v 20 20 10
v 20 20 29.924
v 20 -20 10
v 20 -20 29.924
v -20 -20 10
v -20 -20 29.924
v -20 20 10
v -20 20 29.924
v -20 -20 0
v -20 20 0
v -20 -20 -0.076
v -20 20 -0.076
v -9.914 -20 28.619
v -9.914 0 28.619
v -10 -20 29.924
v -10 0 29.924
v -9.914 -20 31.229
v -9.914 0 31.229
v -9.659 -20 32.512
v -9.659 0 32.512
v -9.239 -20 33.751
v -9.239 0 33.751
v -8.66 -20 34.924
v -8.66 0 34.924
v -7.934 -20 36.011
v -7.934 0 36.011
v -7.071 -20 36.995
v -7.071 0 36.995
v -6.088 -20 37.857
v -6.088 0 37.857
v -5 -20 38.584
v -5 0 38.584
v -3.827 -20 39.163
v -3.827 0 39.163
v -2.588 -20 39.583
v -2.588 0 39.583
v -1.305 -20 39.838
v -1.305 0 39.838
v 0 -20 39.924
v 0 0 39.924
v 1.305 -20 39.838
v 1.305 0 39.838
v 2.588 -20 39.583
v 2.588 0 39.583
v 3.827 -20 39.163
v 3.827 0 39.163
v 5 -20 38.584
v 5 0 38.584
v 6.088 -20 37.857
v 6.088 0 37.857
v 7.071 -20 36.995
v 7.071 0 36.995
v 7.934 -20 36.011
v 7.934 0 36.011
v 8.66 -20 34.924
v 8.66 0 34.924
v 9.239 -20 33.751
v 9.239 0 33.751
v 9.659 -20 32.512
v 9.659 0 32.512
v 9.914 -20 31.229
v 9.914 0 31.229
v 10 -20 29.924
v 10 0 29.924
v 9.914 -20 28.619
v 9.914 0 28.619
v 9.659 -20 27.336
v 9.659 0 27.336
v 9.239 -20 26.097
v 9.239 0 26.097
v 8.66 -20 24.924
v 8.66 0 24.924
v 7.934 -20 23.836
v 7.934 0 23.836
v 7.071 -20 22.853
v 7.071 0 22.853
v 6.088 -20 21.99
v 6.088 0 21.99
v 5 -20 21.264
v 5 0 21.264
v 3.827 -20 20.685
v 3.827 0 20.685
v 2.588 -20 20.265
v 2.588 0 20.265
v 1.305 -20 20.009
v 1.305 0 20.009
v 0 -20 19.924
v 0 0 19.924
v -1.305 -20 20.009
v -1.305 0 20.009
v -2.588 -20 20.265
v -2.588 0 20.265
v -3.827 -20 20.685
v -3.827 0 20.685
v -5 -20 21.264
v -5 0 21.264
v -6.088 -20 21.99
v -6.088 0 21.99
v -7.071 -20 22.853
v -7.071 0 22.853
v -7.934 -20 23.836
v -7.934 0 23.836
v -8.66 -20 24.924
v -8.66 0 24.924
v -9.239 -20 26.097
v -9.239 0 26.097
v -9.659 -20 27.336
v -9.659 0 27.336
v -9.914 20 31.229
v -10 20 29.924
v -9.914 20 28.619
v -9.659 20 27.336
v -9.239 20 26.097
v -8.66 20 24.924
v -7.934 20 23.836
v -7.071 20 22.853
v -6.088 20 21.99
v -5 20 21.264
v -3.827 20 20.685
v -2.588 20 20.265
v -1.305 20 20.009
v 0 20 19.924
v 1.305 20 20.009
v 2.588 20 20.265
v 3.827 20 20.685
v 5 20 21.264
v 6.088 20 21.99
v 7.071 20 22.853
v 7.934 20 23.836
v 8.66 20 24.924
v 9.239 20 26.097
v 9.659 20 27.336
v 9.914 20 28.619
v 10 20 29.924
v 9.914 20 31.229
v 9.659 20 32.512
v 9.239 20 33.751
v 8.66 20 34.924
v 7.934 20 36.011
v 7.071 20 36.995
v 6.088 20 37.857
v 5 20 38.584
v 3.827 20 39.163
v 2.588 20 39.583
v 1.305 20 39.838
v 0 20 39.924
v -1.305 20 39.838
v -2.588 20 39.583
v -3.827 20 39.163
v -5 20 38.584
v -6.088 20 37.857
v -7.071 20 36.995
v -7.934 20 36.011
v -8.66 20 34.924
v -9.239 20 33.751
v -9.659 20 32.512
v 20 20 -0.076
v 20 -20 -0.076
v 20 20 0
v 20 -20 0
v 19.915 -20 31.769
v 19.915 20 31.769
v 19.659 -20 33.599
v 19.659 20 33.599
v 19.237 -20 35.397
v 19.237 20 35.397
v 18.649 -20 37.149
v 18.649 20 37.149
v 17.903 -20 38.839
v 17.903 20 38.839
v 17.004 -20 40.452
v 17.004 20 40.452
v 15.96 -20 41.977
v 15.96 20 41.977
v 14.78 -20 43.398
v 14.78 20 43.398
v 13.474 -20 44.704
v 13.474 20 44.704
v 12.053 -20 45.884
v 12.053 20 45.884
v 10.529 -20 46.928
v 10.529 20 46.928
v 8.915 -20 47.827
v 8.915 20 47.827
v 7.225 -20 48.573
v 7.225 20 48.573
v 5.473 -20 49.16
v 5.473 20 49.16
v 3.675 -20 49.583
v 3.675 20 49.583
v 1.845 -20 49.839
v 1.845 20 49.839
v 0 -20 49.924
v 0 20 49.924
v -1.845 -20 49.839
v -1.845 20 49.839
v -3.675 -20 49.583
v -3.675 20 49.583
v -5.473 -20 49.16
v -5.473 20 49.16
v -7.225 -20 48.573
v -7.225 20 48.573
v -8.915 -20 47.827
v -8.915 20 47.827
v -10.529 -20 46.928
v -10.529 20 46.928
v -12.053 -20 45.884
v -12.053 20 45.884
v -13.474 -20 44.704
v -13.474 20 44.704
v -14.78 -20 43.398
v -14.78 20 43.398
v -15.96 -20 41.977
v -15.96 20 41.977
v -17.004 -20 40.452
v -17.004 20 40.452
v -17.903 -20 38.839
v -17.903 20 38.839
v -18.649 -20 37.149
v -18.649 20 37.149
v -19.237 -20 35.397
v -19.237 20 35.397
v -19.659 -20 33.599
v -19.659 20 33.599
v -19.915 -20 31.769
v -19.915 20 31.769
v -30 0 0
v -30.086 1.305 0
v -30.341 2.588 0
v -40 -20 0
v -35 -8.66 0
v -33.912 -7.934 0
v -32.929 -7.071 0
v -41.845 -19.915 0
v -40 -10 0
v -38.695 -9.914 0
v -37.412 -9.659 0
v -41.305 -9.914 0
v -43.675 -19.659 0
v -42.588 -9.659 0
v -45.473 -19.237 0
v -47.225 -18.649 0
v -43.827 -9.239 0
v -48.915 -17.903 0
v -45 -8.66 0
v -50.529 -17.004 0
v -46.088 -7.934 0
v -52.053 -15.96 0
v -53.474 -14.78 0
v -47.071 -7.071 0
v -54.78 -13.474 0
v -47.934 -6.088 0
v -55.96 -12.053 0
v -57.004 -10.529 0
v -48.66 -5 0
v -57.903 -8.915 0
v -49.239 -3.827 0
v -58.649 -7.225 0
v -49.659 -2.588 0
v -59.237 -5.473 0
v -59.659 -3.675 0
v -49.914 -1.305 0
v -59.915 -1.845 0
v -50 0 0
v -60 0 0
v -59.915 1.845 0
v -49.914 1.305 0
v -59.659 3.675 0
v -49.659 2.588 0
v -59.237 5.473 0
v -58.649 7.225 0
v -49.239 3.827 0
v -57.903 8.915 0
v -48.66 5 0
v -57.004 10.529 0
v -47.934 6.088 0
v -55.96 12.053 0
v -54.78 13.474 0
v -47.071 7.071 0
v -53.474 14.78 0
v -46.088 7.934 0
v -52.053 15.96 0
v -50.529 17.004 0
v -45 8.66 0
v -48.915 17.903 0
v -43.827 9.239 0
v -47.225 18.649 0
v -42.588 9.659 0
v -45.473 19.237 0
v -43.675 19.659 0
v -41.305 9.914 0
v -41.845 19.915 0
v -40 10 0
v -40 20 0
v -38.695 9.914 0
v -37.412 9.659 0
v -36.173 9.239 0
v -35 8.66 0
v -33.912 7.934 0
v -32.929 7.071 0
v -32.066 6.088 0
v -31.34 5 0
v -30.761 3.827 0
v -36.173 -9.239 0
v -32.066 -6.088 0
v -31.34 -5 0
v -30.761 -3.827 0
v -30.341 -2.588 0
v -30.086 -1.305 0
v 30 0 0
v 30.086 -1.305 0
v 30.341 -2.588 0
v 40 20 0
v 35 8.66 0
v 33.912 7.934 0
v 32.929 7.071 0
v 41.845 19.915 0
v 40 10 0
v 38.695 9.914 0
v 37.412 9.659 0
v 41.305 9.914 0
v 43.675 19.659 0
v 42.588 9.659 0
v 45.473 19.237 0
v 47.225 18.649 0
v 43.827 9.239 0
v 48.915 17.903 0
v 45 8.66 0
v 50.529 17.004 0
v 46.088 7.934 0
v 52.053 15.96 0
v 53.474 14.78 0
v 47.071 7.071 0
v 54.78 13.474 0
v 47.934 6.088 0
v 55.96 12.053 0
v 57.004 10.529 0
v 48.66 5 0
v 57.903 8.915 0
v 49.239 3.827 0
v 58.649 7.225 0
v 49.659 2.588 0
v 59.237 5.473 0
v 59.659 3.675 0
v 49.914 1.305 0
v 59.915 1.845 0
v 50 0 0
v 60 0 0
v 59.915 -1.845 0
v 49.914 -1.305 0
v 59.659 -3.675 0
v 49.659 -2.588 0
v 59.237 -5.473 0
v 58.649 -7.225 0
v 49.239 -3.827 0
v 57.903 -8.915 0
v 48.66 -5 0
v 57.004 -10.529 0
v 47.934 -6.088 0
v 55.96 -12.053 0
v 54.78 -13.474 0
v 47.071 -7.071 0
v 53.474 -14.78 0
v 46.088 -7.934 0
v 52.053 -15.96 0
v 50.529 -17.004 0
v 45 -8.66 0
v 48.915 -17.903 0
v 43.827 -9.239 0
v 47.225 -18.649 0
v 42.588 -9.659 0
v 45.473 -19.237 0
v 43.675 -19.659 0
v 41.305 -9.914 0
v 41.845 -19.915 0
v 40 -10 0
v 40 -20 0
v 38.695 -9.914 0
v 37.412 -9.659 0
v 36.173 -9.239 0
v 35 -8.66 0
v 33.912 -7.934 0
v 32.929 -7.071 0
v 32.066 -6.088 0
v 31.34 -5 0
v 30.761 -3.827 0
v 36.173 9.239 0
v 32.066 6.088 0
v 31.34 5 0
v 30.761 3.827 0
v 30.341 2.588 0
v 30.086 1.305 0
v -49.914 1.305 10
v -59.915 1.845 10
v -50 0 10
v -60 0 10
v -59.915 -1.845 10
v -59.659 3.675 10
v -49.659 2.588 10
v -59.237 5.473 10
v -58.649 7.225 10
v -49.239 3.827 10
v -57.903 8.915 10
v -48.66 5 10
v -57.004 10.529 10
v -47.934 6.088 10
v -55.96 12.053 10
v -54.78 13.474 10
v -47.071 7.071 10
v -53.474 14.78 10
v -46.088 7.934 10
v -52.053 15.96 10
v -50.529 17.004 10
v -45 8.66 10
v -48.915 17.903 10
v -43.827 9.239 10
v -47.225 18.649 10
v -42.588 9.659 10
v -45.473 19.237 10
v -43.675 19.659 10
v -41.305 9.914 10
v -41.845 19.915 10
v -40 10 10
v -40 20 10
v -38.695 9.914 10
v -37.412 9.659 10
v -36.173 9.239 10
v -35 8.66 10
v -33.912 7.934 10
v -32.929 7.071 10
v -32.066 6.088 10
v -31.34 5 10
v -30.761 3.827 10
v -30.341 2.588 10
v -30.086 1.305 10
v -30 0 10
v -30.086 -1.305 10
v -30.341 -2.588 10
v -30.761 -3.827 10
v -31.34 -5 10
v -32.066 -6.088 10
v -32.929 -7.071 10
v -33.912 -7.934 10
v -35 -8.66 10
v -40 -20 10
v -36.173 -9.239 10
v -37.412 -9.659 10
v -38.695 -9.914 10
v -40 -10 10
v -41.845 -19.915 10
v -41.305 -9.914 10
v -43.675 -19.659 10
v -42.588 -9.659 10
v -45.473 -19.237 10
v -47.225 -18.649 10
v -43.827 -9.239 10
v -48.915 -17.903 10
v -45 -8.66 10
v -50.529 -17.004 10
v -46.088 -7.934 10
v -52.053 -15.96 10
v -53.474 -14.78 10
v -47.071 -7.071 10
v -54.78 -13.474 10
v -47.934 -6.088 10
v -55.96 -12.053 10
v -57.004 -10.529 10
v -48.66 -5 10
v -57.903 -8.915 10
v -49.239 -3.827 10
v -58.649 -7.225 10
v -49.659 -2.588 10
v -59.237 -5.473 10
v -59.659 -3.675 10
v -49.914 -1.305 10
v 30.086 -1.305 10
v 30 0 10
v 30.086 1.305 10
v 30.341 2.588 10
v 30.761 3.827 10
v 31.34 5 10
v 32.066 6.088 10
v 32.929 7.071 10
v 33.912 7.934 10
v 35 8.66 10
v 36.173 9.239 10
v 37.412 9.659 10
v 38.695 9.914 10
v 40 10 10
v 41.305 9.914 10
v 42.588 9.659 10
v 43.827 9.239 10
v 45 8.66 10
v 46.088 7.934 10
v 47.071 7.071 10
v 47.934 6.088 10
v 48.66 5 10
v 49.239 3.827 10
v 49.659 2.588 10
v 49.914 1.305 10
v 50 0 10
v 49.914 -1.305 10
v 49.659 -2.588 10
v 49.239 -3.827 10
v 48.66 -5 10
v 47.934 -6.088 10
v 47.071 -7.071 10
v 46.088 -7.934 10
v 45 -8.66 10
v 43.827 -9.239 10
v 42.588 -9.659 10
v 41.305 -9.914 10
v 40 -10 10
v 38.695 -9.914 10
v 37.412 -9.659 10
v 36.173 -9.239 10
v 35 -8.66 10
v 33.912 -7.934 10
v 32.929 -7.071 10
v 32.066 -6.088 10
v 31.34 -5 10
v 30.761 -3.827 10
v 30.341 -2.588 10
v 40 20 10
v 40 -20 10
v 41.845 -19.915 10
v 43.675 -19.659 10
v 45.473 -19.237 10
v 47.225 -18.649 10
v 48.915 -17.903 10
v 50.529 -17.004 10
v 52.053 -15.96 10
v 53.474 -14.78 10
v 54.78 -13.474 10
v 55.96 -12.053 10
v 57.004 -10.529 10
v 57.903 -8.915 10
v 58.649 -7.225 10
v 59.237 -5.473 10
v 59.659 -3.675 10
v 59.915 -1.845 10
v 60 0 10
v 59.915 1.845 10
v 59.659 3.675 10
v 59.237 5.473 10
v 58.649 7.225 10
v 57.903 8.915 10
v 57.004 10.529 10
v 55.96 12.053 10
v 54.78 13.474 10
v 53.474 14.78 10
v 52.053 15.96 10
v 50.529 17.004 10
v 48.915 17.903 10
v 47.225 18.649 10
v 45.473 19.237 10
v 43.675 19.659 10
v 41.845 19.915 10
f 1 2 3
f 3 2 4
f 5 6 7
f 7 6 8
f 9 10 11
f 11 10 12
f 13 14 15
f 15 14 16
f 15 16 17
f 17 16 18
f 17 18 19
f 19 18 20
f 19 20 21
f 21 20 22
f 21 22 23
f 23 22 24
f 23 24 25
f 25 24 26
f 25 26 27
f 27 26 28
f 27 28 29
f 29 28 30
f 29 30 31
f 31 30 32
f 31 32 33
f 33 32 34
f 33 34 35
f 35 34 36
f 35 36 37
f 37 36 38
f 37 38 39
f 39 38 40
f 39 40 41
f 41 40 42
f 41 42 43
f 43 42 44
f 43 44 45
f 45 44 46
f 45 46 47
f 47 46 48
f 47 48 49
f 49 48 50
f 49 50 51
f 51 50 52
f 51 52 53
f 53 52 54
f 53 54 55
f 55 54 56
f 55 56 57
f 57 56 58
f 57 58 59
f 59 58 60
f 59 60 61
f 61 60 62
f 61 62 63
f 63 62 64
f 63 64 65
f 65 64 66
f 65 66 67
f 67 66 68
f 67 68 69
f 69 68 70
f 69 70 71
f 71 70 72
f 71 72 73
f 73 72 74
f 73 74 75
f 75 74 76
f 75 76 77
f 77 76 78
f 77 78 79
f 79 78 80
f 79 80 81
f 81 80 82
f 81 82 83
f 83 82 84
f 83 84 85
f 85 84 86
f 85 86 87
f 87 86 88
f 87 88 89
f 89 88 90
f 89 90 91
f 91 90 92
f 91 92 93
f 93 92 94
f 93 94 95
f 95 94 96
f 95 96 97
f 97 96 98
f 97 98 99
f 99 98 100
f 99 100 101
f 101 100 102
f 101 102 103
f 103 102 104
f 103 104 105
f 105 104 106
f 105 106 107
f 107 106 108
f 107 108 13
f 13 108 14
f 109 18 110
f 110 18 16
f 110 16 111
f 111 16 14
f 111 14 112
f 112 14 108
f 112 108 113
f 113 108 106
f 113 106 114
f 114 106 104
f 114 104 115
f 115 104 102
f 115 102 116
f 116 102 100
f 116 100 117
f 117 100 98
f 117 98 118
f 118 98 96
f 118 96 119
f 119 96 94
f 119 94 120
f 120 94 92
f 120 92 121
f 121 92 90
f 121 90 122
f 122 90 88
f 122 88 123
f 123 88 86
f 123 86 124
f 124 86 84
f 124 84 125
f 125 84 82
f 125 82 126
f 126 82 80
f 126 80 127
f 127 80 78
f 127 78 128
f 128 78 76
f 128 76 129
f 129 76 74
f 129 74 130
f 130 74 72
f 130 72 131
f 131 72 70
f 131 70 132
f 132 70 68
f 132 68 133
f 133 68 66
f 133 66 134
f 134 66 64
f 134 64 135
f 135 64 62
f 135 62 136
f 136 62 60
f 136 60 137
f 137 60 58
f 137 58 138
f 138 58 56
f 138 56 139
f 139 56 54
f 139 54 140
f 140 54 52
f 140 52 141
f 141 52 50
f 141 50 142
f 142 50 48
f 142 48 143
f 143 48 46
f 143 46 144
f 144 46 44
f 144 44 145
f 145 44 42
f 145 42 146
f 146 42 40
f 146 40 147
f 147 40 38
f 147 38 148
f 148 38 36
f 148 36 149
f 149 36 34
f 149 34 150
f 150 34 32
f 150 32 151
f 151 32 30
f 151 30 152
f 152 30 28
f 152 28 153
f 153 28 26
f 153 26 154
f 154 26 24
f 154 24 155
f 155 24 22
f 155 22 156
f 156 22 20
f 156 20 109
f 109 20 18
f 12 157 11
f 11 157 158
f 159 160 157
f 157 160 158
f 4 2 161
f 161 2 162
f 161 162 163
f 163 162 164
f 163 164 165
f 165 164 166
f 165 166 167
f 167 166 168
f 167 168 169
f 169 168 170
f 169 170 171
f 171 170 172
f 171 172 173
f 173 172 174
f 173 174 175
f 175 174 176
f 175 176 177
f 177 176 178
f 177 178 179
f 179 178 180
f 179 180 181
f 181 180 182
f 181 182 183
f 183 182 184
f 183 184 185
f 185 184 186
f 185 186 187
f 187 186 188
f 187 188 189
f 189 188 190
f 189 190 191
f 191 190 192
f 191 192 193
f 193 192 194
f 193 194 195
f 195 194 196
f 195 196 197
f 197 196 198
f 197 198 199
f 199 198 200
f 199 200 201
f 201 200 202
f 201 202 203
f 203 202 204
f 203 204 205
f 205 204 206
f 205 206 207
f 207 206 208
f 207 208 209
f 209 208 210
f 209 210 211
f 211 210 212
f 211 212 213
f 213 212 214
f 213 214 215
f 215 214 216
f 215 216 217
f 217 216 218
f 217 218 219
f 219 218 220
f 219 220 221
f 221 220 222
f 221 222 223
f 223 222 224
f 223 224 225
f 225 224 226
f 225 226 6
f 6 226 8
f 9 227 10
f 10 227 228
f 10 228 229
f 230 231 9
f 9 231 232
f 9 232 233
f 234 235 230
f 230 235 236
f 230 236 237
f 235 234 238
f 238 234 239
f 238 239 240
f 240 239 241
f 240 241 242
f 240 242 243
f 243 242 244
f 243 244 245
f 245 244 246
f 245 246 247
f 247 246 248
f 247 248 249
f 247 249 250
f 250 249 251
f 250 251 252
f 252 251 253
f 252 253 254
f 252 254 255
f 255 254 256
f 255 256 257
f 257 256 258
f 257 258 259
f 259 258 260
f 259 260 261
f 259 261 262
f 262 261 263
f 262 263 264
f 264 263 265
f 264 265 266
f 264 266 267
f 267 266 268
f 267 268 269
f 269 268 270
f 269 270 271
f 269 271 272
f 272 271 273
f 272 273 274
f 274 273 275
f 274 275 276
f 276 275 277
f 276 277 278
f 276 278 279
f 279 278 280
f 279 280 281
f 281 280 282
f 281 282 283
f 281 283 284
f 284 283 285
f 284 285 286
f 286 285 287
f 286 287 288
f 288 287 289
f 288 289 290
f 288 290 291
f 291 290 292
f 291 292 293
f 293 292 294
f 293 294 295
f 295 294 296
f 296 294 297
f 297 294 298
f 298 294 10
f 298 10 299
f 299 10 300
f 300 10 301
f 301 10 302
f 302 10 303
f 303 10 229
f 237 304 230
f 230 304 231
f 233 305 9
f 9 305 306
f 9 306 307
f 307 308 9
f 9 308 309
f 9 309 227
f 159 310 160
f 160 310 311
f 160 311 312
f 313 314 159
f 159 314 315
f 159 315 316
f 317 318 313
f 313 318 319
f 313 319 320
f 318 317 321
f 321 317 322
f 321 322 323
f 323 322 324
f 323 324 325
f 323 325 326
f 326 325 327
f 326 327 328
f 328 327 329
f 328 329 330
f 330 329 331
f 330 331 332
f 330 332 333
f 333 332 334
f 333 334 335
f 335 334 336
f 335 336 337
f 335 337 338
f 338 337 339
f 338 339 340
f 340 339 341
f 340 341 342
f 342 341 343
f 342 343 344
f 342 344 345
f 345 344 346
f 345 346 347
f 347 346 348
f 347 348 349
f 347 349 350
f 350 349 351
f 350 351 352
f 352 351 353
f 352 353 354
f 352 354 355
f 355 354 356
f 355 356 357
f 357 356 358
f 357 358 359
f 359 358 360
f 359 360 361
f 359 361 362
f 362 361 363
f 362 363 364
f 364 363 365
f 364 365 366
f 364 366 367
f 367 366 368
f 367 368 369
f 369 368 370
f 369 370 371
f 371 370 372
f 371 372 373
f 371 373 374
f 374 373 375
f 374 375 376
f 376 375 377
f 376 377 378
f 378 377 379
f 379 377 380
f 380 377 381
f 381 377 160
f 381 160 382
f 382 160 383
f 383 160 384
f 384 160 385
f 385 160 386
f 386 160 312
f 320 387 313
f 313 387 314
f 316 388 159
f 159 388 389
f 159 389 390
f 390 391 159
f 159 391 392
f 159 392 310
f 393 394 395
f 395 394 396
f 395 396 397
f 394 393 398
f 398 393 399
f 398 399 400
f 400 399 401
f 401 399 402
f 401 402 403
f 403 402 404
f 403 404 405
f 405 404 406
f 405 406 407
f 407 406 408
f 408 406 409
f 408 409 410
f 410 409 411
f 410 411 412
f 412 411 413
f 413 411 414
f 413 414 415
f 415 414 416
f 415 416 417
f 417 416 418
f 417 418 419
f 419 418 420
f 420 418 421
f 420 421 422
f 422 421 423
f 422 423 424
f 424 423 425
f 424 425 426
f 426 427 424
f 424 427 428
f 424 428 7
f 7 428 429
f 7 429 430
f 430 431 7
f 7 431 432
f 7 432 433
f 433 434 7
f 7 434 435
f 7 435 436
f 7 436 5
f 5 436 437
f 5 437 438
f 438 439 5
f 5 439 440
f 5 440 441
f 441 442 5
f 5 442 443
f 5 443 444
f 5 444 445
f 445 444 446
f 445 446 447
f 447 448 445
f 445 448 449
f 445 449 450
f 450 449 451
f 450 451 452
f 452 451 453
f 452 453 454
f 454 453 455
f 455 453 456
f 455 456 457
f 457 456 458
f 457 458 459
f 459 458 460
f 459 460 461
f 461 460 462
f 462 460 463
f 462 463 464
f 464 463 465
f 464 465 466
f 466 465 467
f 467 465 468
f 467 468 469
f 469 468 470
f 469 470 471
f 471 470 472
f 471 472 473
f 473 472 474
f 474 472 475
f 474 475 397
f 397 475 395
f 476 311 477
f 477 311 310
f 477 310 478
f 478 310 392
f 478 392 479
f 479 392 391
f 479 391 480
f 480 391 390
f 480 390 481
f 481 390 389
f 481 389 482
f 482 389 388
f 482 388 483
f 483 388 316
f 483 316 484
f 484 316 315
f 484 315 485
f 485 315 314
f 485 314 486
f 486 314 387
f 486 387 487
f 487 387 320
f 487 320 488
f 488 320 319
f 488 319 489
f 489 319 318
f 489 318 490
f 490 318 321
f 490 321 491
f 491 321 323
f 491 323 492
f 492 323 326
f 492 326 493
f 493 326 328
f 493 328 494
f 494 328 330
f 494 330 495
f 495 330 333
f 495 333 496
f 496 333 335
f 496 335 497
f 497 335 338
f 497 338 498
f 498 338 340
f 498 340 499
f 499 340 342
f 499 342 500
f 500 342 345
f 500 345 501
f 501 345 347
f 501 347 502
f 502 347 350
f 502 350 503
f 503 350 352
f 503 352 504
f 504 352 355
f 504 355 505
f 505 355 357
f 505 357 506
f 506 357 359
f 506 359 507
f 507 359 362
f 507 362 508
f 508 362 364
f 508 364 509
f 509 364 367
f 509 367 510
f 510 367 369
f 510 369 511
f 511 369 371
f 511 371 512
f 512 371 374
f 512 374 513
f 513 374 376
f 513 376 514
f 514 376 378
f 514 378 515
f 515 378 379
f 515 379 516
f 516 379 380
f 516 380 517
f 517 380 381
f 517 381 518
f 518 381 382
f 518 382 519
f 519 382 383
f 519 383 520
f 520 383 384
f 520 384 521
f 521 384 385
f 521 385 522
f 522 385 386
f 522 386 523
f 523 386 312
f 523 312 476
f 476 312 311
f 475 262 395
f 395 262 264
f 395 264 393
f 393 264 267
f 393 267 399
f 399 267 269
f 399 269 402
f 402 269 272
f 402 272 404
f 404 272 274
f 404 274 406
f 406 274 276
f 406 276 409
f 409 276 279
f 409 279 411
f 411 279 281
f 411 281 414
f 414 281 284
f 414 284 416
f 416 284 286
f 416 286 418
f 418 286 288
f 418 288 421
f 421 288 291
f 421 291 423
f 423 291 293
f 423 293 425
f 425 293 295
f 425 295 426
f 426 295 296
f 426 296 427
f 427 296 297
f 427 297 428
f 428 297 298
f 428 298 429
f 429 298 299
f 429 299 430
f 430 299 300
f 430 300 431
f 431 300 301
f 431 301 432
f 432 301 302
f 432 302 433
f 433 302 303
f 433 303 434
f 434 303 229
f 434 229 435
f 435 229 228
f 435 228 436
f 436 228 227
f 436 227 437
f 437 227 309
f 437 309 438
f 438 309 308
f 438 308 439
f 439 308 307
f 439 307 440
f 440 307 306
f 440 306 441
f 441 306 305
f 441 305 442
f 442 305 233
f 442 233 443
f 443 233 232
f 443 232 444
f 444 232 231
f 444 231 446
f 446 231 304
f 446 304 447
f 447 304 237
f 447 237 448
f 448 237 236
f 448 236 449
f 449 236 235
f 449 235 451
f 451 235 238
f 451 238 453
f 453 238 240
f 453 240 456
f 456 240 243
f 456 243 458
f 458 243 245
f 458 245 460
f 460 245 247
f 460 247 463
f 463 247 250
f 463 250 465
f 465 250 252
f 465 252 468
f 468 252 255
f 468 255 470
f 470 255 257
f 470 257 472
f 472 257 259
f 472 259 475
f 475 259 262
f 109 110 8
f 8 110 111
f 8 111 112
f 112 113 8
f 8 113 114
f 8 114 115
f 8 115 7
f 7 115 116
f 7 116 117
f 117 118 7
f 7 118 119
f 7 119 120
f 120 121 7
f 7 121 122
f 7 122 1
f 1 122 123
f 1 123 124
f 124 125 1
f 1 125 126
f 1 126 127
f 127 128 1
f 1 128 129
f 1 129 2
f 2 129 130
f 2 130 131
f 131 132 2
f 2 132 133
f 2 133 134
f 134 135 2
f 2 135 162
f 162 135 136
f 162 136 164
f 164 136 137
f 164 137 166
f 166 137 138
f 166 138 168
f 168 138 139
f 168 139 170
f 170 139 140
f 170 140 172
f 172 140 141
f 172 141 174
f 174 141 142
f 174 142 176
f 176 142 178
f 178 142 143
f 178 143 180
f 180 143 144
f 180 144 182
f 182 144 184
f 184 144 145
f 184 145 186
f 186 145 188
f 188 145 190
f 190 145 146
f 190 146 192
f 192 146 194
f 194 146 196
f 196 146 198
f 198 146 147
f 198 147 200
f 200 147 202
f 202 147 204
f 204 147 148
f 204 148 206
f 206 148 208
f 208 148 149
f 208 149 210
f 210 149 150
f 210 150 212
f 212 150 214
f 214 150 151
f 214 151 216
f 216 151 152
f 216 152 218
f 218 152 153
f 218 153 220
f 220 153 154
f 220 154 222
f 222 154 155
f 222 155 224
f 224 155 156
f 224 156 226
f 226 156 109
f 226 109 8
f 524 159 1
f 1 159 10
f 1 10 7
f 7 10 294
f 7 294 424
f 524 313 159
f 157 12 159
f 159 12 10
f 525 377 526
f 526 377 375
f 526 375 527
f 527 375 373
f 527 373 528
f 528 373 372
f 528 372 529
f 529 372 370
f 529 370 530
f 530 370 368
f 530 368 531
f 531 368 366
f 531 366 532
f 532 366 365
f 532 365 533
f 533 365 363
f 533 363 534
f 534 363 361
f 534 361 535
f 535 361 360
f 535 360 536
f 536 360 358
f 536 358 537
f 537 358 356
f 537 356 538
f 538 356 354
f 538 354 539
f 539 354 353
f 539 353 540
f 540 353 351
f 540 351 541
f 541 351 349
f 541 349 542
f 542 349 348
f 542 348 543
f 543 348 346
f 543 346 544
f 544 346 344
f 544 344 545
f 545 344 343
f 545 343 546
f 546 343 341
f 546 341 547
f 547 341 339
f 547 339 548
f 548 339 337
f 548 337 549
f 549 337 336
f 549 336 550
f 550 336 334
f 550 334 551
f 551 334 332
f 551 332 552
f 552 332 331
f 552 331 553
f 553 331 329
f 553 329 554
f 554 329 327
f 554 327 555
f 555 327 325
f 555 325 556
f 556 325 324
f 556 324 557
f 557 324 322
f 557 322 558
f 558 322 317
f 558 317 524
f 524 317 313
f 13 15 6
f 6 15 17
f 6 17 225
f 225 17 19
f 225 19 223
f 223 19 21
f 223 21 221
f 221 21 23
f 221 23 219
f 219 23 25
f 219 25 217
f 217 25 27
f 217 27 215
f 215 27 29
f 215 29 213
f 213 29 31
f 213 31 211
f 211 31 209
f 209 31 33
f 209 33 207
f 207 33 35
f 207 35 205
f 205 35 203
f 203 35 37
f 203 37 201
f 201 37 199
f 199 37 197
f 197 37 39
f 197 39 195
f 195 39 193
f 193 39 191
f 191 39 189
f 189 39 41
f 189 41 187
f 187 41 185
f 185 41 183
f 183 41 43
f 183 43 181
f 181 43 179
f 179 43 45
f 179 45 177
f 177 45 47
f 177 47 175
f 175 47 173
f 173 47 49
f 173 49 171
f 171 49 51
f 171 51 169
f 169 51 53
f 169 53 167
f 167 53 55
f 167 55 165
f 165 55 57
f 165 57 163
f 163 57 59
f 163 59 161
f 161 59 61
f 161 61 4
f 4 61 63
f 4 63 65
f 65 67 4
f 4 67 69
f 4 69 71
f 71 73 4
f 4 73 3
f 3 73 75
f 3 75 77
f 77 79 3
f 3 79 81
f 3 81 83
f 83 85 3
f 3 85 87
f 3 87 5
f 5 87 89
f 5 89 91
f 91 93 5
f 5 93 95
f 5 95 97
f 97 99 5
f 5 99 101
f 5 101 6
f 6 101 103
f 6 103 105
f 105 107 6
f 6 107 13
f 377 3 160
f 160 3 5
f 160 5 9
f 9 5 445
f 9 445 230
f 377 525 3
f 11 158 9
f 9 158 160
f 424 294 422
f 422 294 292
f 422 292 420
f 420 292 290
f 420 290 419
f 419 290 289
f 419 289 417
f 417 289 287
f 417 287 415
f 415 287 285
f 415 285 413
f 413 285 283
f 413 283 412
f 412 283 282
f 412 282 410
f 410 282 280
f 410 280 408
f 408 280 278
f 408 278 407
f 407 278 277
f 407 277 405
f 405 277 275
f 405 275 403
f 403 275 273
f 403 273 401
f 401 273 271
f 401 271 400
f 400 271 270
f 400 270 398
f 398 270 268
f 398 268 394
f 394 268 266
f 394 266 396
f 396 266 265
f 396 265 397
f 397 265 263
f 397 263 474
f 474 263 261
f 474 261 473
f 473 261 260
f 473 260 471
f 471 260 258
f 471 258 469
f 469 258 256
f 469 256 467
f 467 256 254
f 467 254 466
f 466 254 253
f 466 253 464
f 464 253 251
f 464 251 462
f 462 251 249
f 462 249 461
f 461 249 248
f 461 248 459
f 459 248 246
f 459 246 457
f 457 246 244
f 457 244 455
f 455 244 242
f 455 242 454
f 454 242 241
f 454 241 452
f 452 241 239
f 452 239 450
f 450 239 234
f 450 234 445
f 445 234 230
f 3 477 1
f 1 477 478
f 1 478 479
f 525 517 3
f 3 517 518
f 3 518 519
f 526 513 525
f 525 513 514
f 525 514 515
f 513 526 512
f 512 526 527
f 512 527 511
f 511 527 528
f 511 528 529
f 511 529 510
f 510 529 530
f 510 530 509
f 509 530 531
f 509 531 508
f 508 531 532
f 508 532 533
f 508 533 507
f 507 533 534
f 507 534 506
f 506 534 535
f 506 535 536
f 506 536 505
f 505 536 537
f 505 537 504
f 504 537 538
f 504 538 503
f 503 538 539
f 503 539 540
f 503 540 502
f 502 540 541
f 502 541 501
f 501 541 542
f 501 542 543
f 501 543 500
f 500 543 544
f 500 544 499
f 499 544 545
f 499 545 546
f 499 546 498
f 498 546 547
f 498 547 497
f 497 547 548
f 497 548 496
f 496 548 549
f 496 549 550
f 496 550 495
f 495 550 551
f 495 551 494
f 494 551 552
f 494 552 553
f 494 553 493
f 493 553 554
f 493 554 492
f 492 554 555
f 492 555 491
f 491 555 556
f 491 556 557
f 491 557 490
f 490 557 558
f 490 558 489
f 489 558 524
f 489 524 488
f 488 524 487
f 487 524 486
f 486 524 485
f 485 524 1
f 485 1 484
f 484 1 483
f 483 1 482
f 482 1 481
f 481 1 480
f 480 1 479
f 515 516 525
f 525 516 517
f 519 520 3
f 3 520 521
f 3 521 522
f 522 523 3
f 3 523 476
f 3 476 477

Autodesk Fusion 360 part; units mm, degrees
sketch "Horizontal" plane through (0, 0, 0) normal (0, 0, 1) x (1, 0, 0)
  line L0 (40, -20) -> (-40, -20)
  line L1 (-40, 20) -> (40, 20)
  circle A0 centre (40, 0) radius 10
  circle A1 centre (-40, 0) radius 10
  line L2 (20, 0) -> (40, 0) construction
  arc A2 (-40, 20) -> (-40, -20) centre (-40, 0) ccw
  arc A3 (40, -20) -> (40, 20) centre (40, 0) ccw
  dimension "d1" = 80
  dimension "d2" = 40
  dimension "d5" = 40
  dimension "d6" = 40
extrude "Extrude1" add sketch "Horizontal" along normal blind 10
sketch "Vertical" plane through (0, 0, 0) normal (0, 1, 0) x (1, 0, 0)
  line L0 (-20, 0.0761) -> (20, 0.0761)
  line L1 (20, 0.0761) -> (20, -29.9239)
  line L2 (-10, -29.9239) -> (-20, -29.9239)
  line L3 (-20, -29.9239) -> (-20, 0.0761)
  line L4 (-40, 0) -> (-40, -10)
  circle A0 centre (0, -29.9239) radius 10
  arc A1 (-20, -29.9239) -> (20, -29.9239) centre (0, -29.9239) ccw
  dimension "d11" = 40
  dimension "d12" = 30
  dimension "d13" = 20
  dimension "d14" = 20
  dimension "d15" = 20
extrude "Extrude2" add sketch "Vertical" along normal mid plane 40
